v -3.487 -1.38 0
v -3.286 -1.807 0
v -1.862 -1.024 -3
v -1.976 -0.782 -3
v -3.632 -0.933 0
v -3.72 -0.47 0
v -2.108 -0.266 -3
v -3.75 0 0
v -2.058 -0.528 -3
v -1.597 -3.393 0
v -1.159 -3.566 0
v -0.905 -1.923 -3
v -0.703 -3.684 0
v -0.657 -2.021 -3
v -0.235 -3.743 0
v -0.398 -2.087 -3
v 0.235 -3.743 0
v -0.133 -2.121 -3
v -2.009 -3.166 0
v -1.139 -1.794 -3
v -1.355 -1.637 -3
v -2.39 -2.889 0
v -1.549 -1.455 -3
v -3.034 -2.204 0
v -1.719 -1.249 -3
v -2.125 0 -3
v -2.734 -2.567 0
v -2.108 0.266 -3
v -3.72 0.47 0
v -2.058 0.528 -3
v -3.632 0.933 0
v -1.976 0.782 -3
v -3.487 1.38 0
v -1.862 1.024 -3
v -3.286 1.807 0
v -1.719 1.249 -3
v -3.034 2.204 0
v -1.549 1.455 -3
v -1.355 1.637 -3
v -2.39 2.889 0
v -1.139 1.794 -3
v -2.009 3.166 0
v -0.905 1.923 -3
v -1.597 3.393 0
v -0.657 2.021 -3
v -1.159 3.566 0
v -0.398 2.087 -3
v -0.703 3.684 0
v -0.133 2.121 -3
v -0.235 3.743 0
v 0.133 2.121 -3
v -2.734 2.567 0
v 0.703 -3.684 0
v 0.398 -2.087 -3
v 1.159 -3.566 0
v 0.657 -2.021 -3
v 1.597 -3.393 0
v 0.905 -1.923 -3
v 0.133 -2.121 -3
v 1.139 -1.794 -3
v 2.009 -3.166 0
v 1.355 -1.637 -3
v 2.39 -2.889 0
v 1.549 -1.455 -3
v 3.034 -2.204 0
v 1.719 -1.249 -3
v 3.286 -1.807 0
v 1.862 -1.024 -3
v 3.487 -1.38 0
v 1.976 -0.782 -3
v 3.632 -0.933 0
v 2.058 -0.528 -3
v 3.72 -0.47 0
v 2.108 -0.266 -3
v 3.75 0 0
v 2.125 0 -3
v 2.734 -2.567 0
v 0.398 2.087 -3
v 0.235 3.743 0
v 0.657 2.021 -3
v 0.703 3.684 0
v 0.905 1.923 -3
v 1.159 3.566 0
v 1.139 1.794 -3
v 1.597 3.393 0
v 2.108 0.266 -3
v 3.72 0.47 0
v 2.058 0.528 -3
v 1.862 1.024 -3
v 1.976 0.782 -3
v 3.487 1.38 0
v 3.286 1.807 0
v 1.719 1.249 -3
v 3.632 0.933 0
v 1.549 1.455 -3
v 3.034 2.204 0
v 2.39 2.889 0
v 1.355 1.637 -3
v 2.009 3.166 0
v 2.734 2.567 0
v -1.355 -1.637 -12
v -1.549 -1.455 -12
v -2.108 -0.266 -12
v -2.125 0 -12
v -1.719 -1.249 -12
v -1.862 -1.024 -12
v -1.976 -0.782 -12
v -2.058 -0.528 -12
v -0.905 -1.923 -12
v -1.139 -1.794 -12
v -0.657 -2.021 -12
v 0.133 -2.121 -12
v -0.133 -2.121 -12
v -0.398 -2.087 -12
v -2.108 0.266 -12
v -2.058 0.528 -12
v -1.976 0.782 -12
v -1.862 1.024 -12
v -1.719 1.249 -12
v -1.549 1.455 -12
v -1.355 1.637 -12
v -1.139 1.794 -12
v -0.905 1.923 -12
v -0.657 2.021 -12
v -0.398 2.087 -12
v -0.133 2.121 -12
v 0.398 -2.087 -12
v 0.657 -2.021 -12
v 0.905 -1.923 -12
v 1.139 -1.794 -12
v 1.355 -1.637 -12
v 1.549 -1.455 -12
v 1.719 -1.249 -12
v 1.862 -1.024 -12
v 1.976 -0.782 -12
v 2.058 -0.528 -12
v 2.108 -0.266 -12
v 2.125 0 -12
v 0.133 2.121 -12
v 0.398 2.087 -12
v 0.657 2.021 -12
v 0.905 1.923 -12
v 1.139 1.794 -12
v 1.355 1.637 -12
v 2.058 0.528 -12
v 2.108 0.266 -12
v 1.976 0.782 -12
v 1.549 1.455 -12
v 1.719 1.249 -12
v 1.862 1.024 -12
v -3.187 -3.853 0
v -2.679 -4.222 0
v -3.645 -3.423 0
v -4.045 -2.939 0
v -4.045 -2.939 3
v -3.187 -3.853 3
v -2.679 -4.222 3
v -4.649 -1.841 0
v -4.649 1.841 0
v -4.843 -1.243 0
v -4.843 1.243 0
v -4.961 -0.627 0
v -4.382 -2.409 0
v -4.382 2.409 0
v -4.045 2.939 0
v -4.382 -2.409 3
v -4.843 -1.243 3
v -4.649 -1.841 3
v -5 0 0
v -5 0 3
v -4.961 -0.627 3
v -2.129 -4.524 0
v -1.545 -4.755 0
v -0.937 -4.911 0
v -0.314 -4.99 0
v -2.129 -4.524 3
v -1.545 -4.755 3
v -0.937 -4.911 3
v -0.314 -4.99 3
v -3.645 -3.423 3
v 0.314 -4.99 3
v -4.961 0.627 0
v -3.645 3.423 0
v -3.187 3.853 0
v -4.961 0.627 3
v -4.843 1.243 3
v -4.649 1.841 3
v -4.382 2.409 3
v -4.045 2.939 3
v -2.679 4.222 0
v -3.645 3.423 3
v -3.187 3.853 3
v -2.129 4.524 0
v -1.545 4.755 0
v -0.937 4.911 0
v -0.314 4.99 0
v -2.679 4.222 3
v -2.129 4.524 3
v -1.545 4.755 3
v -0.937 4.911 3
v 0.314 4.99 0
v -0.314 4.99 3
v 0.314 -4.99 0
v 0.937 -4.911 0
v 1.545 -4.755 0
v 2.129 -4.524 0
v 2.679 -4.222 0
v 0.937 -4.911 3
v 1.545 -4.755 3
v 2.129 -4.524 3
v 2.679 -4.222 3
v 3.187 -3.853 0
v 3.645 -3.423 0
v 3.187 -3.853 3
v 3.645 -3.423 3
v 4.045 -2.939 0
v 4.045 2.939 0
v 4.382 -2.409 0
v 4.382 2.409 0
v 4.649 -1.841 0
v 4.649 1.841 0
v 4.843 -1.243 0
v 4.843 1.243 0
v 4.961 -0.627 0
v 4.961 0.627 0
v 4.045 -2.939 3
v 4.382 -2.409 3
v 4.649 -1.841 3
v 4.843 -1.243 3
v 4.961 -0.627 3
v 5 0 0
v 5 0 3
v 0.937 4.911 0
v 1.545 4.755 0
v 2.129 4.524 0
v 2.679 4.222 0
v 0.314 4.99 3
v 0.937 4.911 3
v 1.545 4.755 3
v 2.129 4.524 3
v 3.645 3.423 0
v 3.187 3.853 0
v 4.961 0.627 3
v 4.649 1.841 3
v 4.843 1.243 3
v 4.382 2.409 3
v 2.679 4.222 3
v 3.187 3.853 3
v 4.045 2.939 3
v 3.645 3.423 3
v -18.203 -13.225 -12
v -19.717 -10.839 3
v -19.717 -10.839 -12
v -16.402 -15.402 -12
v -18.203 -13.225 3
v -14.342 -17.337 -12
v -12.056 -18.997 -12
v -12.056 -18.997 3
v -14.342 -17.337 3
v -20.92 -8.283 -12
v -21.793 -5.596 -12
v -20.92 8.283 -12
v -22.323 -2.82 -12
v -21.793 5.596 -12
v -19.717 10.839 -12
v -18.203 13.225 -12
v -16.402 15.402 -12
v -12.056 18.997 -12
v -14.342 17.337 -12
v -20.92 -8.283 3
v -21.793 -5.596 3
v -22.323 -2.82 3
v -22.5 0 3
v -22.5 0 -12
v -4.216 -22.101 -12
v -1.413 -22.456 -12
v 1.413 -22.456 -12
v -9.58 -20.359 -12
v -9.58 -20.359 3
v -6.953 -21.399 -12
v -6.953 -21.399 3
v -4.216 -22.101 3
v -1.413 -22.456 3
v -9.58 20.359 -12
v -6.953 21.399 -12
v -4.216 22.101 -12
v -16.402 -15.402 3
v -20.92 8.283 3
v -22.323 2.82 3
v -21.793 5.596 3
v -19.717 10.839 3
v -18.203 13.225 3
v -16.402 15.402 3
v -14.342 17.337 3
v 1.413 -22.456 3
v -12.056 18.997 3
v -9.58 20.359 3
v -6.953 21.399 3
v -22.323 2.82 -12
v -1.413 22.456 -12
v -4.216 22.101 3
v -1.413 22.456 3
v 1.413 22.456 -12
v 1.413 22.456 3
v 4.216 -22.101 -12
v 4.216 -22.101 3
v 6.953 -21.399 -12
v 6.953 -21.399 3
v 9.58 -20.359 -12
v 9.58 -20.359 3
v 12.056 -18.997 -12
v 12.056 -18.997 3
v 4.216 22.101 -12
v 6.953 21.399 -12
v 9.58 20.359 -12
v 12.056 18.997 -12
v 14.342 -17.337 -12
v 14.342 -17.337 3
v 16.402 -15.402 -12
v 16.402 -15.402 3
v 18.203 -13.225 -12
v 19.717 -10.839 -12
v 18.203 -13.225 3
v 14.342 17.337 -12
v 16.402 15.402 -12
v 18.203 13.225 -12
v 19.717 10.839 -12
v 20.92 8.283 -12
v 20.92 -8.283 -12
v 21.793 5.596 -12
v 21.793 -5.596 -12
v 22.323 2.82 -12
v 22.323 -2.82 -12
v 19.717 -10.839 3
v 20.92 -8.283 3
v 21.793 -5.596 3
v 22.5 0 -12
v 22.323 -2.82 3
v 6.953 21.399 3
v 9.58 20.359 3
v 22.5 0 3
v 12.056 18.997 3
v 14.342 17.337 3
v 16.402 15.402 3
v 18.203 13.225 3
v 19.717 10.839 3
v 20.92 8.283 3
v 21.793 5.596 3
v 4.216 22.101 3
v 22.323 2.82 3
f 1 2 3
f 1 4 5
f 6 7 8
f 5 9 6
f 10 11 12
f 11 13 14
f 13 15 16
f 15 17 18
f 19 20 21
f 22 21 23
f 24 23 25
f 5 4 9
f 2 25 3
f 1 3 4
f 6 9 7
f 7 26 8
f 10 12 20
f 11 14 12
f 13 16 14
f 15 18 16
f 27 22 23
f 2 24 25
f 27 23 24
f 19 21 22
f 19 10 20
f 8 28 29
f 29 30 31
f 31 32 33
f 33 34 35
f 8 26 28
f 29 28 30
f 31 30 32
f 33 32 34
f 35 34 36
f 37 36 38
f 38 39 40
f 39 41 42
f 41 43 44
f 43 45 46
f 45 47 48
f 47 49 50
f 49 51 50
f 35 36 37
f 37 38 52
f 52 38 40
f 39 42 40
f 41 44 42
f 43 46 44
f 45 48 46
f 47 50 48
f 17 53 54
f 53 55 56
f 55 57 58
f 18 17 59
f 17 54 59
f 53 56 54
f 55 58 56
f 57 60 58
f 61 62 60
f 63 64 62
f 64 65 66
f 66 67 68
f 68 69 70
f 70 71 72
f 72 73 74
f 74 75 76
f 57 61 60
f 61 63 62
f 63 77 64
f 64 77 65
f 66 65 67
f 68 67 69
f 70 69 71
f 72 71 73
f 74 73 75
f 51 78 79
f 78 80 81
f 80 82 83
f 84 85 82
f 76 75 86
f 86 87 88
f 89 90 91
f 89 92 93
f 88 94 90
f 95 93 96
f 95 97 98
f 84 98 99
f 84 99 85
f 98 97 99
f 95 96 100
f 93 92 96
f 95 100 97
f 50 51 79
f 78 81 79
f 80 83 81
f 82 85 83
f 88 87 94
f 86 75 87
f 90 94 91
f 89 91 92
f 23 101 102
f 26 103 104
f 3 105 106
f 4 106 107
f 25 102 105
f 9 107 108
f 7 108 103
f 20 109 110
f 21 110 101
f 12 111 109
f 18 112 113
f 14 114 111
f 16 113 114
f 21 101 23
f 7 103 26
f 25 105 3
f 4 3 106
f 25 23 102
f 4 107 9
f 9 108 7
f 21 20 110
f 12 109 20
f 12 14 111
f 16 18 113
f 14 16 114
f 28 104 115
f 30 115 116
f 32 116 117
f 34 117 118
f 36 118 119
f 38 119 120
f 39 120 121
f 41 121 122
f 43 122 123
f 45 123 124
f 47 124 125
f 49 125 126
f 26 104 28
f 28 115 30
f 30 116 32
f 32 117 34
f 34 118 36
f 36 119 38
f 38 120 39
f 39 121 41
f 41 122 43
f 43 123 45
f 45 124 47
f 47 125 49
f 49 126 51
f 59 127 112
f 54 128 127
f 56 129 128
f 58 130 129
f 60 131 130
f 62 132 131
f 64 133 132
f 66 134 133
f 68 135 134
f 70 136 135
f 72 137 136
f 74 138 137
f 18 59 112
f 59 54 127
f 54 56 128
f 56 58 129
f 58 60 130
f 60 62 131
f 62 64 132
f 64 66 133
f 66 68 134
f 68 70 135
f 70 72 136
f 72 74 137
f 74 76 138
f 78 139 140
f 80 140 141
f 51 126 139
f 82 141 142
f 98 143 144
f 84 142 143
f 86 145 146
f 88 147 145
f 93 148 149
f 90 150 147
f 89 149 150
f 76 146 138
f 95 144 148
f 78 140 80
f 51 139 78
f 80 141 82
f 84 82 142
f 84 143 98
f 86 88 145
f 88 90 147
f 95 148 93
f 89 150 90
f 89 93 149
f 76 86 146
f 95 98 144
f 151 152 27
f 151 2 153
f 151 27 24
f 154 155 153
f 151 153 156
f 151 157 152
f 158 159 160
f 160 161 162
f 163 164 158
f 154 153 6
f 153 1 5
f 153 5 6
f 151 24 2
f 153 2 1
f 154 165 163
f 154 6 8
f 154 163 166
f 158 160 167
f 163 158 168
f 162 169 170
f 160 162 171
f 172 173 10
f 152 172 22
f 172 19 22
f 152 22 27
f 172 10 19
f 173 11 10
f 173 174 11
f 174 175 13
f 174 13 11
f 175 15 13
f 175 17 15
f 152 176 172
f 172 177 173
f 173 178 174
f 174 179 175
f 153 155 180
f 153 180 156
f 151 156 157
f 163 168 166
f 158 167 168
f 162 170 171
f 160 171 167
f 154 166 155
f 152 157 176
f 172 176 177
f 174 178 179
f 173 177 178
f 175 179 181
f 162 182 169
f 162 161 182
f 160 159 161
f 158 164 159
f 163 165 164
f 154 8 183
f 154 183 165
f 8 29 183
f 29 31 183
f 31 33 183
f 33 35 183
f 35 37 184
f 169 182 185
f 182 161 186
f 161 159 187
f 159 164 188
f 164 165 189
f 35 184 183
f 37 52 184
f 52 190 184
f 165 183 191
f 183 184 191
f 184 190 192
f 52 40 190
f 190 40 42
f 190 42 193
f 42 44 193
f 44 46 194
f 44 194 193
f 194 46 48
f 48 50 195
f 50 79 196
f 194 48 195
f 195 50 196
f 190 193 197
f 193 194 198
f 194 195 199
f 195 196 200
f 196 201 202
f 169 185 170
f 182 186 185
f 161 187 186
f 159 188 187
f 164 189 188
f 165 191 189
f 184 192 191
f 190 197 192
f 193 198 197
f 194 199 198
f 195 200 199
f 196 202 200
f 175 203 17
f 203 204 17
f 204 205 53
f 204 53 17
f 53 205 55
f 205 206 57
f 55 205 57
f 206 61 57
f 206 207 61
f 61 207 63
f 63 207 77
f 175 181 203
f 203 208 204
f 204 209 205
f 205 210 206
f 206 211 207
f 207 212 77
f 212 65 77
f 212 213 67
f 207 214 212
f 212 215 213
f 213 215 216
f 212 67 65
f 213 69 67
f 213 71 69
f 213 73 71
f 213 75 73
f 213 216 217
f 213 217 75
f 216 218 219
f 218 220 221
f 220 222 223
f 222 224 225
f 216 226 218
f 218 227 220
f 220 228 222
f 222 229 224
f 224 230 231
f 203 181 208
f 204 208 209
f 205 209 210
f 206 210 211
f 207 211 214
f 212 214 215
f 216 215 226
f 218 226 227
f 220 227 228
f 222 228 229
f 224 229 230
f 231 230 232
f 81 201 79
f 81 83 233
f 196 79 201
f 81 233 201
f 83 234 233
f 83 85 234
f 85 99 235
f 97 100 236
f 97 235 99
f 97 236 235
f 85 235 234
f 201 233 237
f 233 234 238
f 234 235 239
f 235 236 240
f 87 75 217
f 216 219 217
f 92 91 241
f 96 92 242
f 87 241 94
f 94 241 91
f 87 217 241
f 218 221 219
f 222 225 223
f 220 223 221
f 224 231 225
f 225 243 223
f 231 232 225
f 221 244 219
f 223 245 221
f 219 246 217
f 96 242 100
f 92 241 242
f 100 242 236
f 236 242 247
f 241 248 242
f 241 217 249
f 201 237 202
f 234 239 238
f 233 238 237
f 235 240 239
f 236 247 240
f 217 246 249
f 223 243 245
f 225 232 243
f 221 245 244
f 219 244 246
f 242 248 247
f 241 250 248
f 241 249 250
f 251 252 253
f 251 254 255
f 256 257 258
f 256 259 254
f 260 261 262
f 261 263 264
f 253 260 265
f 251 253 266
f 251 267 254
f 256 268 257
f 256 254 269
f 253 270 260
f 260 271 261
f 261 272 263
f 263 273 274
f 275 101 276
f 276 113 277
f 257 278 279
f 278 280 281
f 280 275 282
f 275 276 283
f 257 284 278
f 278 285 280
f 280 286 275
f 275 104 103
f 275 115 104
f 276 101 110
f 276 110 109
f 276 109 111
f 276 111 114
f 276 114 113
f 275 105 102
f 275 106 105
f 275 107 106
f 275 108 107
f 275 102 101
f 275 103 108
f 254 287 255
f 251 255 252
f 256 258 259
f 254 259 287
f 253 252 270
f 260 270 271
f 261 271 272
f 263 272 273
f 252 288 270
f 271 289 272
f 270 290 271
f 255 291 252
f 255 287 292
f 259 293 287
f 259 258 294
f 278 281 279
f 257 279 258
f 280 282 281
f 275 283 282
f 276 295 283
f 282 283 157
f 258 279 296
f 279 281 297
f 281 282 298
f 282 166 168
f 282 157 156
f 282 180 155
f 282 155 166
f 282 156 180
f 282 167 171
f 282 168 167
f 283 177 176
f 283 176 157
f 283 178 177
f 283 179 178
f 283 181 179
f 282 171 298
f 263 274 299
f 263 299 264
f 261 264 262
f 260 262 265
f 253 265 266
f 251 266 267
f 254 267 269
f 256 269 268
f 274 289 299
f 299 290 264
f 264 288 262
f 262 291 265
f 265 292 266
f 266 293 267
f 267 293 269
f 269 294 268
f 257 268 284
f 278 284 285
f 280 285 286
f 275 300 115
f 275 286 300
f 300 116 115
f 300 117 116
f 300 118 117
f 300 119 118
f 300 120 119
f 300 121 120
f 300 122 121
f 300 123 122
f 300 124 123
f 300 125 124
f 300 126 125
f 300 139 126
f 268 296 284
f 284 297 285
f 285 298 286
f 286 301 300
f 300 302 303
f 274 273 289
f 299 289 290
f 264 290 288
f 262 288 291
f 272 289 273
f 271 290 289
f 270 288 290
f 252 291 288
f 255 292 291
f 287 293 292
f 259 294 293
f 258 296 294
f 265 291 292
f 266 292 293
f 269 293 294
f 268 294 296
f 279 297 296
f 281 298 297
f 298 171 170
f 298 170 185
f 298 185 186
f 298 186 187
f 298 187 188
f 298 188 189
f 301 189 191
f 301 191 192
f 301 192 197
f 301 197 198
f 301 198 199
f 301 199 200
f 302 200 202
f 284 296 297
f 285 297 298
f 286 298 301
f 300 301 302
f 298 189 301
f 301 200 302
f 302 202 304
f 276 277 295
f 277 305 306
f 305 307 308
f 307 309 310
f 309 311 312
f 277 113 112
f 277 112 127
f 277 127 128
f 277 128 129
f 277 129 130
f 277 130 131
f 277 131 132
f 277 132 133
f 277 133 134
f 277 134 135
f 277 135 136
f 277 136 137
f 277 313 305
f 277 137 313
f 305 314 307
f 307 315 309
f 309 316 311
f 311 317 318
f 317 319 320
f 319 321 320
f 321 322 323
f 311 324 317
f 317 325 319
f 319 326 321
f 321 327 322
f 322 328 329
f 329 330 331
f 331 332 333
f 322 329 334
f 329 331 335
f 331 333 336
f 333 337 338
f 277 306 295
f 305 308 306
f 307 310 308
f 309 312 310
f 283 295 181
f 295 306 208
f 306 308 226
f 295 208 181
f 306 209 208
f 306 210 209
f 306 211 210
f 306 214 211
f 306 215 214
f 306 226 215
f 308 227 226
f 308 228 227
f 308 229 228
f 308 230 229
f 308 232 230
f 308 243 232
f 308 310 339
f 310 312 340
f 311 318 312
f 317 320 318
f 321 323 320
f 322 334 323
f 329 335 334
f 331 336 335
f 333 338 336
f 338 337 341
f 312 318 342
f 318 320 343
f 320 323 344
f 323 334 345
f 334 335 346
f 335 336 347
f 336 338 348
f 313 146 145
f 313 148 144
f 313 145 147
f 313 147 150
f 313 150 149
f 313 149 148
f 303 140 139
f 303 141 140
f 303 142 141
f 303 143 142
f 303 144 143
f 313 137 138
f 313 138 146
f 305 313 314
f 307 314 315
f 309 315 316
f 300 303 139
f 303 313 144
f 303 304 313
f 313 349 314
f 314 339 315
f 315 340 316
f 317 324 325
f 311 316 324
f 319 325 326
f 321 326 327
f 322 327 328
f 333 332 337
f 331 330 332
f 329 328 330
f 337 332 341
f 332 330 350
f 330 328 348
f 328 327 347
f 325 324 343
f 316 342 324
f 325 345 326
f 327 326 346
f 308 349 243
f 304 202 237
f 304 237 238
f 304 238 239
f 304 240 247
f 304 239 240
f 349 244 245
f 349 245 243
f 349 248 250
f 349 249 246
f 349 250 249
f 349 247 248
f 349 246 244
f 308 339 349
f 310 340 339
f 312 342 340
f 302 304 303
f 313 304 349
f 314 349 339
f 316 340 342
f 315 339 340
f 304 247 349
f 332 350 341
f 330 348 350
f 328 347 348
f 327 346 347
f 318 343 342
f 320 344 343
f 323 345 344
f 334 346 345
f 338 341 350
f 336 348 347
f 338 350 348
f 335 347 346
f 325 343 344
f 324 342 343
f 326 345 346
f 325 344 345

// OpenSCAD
$fn = 50;

difference() {
	union() {
		translate(v = [0, 0, -12.0]) {
			cylinder(h = 15, r = 22.5);
		}
	}
	union() {
		translate(v = [0, 0, 0]) {
			rotate(a = [0, 0, 0]) {
				difference() {
					union() {
						translate(v = [0, 0, -15.0]) {
							cylinder(h = 15, r = 2.0);
						}
						translate(v = [0, 0, -3]) {
							cylinder(h = 3, r1 = 2.125, r2 = 3.75);
						}
						translate(v = [0, 0, -15.0]) {
							cylinder(h = 15, r = 2.125);
						}
						translate(v = [0, 0, -15.0]) {
							cylinder(h = 15, r = 2.0);
						}
					}
					union();
				}
			}
		}
		#cylinder(h = 3, r = 5.0);
	}
}
